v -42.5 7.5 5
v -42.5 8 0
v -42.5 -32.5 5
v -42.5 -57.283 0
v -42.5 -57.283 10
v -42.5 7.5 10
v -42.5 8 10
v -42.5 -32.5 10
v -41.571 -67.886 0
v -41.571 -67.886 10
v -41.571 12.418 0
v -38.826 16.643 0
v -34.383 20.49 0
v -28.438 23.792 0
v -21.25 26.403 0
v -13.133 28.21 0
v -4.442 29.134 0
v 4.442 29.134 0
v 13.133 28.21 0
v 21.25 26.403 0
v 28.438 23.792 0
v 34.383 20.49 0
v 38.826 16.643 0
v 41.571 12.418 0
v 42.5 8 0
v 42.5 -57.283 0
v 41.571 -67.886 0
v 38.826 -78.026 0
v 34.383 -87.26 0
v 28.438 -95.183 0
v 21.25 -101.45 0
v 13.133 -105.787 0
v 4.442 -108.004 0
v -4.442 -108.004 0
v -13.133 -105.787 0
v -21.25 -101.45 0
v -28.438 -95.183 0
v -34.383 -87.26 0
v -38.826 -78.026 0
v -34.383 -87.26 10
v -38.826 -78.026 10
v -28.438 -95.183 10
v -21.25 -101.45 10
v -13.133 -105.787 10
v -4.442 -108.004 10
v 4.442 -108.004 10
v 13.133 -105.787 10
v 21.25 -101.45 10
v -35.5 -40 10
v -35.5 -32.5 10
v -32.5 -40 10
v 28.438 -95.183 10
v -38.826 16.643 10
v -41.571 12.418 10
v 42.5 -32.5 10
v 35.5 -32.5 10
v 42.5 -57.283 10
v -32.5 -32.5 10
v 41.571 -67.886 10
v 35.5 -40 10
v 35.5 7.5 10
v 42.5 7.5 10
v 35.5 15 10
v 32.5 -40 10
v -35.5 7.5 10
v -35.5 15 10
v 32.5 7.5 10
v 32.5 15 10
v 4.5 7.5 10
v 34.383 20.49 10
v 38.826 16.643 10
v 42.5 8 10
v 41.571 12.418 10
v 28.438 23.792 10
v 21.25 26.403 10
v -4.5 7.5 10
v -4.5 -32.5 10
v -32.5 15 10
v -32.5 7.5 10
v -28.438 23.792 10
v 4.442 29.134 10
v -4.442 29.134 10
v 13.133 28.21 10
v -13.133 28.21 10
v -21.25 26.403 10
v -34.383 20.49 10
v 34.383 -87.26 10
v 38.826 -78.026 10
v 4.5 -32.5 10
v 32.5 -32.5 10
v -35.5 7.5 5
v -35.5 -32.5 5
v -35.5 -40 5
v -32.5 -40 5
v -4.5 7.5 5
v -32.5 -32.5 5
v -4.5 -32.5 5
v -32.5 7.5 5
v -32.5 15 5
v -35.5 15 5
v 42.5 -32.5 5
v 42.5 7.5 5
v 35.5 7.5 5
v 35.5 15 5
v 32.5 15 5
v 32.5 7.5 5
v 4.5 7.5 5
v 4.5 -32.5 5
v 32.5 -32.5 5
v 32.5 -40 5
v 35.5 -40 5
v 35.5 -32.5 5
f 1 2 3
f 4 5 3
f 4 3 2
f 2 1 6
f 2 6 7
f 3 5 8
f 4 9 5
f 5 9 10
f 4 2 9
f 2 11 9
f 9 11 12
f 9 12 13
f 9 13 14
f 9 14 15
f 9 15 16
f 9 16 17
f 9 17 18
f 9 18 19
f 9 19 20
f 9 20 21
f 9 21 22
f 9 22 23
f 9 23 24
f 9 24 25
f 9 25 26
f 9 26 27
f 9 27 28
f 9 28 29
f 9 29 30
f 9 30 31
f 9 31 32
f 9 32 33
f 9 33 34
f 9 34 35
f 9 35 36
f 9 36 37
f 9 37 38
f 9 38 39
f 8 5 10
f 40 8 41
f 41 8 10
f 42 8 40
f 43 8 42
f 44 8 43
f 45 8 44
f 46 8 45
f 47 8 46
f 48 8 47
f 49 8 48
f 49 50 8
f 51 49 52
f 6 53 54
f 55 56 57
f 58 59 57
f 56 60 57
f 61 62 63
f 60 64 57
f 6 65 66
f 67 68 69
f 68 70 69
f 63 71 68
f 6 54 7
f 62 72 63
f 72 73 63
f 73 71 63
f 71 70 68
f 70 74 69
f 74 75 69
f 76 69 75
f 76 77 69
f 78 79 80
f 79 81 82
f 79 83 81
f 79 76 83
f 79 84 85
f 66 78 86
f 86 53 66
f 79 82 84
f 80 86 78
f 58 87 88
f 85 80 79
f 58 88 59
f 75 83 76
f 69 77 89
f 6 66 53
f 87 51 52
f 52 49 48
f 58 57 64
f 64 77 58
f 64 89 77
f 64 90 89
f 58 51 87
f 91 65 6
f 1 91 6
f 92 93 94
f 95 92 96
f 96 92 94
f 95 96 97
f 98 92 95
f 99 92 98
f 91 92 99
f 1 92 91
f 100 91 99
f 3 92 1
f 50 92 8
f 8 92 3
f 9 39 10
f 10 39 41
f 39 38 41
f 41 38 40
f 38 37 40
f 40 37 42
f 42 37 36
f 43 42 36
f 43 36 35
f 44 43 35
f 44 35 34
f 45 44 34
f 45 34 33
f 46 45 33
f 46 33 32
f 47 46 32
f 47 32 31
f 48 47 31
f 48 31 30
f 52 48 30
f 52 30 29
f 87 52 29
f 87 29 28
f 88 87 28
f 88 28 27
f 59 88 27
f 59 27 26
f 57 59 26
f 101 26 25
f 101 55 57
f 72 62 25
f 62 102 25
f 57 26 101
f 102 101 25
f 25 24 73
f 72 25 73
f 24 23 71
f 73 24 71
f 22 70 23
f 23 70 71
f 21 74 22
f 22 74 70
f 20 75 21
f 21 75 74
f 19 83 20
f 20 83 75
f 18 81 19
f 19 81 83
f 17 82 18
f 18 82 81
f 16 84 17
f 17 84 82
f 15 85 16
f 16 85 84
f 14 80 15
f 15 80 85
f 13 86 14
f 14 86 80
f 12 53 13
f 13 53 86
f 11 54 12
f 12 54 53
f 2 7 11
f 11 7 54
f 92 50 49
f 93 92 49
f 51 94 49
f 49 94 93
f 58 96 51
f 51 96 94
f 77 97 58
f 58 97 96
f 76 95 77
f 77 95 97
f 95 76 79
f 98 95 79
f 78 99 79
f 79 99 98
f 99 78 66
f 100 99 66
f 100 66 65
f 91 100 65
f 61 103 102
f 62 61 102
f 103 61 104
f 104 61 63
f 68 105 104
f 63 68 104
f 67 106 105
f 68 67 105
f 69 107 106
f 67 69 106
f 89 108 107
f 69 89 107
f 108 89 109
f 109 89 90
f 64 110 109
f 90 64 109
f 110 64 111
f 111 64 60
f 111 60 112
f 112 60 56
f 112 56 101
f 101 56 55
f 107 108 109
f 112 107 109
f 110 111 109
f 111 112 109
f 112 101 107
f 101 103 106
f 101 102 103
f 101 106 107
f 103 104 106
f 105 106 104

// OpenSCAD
// file: StandardServo.scad
/**
 * Module: Standard Servo
 * 
 * Description: 
 *      Outline of a standard servo, origin is location of motor attachment point
 **/

module StandardServo()
{
	servoBodyWidth = 38;
	servoBodyLength = 40;
	servoHeight = 20;
	mountLength = 55;
	mountWidth = 3;
	mountPoint = 15;
	translate([0,-mountLength + mountPoint,0])
	{
		// Servo Body
		translate([0,(mountLength-servoBodyLength)/2,0])
			cube([servoBodyWidth,servoBodyLength,servoHeight]);

		// Servo Mount
		translate([7,0,0])
			cube([mountWidth,mountLength,servoHeight]);
	}
}
//StandardServo();
// main file
/***
 * Module: RobotBase
 * Description:
 *     Base that robot "sits" on. Mount point for servos. All Units in mm
 * Origin is at center of body lengthwise, and along the "legs"
 *
 * Author: Alex Gutierrez (firstname.lastname AT gmail)
 */

include <StandardServo.scad>;

module RobotBase(basewidth=85)
{
	GOLDEN_RATIO = 1.61803398875;
	baseThickness = 10;
	bottomPlateThickness = 5;
	motorCenterOffset = 20;

	// Compute Base Length as a function of width
	baselength = basewidth * GOLDEN_RATIO;
	echo(baselength);
	
	// Upper Cylinder (by head)
	headScaleFactor = 0.5;
	headContributionToLength = (basewidth * headScaleFactor)/2;

	// Lower Cylinder (by tail)
	tailScaleFactor = 1.2;
	tailContributionToLength = (basewidth * tailScaleFactor)/2;

	centralBoxLength = baselength - headContributionToLength - tailContributionToLength;

	// Create Main Body
	difference(){
		translate([-basewidth/2, -centralBoxLength+8,0]){
	
			// Create Central Cube
			cube([basewidth, centralBoxLength, baseThickness]);

			// Create Head Cylinder
			translate([basewidth/2,centralBoxLength,0])
				scale([1,headScaleFactor,1])
					cylinder(baseThickness, d=basewidth);

			// Create Tail Cylinder
			translate([basewidth/2,0,0])
				scale([1,tailScaleFactor,1])
					cylinder(baseThickness, d=basewidth);
		}
		// Left Motor
		translate([-basewidth/2,0,bottomPlateThickness])
			StandardServo();

		// Right Motor
		translate([basewidth/2,0,bottomPlateThickness])
			mirror([1,0,0])
				StandardServo();
		
	}
	
}

RobotBase();
